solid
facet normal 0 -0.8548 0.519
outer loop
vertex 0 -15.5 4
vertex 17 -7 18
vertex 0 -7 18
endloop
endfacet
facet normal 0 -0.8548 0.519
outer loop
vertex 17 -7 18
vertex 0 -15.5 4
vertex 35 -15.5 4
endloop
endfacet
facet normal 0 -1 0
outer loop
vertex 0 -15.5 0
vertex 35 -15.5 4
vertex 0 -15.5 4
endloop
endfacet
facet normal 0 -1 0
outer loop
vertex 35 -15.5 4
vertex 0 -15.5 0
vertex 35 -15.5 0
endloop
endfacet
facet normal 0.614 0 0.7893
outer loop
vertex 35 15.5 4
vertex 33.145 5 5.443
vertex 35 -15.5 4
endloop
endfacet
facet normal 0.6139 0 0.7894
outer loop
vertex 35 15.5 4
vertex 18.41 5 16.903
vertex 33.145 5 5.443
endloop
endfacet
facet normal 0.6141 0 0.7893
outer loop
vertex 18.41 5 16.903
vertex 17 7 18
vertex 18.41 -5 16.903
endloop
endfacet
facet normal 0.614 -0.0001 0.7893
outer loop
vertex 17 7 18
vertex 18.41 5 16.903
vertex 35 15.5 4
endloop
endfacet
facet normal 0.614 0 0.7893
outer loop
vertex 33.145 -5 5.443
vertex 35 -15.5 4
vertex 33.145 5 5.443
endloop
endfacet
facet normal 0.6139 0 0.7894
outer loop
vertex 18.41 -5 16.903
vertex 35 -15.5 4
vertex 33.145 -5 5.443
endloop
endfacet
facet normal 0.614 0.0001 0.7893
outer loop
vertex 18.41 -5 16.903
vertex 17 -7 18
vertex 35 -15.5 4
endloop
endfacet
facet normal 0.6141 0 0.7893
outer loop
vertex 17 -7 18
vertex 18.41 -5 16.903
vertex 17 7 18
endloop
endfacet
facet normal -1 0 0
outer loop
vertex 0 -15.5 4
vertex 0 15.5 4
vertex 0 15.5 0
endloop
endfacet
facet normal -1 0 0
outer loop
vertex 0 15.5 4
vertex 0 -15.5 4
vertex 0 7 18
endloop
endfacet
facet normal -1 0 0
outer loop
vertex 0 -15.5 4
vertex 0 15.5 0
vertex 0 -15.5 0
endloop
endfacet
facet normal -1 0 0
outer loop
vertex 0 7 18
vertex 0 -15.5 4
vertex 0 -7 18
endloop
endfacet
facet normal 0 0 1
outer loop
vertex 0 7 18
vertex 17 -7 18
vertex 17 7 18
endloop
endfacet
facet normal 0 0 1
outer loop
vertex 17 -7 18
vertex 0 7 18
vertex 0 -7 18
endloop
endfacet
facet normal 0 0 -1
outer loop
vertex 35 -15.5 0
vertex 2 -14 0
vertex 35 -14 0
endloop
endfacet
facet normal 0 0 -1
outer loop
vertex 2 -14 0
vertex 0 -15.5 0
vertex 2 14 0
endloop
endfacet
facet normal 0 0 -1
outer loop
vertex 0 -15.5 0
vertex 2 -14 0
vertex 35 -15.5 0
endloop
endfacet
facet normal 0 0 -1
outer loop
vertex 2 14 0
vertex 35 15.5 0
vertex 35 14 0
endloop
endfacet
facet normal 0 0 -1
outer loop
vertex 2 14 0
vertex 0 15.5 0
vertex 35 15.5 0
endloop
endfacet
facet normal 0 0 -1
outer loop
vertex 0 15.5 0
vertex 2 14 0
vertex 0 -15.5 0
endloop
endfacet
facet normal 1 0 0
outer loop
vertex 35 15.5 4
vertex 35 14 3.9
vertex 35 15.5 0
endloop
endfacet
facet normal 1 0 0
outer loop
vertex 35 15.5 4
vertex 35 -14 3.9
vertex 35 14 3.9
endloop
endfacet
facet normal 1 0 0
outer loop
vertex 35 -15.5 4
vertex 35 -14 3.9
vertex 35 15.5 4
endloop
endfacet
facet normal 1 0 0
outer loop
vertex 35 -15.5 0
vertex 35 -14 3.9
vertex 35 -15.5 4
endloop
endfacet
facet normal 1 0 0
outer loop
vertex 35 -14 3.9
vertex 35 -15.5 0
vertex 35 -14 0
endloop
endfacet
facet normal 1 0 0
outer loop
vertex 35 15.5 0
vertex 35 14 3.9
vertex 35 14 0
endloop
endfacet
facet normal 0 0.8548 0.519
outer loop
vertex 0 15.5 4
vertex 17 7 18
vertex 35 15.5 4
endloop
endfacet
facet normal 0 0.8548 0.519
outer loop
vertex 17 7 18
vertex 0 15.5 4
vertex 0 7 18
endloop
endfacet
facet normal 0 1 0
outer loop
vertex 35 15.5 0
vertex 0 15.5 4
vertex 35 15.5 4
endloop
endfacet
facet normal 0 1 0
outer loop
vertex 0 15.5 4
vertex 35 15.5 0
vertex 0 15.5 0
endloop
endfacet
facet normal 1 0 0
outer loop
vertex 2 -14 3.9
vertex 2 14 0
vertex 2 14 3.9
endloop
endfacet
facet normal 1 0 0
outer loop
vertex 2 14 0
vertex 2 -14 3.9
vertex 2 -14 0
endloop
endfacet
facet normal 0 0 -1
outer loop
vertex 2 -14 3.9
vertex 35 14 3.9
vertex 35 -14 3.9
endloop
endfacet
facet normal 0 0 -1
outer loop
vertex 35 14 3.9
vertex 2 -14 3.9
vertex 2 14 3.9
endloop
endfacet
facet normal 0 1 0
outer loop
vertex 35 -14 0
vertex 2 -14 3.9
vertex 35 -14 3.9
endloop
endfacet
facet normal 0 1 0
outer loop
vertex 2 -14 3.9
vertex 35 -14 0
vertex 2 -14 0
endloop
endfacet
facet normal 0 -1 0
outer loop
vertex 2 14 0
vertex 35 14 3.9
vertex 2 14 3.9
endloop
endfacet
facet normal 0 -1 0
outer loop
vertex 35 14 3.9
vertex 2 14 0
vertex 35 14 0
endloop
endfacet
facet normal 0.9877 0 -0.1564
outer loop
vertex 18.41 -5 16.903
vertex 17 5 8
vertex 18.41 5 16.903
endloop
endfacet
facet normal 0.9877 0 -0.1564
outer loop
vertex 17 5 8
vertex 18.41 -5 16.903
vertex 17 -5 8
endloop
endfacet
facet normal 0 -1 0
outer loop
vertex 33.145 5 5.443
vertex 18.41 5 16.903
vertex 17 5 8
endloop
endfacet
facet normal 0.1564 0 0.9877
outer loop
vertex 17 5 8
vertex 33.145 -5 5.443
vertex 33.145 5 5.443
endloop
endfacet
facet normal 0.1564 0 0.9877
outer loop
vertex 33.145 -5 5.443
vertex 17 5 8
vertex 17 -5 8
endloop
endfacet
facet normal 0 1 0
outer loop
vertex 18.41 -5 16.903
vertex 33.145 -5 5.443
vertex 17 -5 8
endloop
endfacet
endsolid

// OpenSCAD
difference(){
    hull(){
    translate([0,-31/2,0])cube([35,31,4]);
    translate([0,-14/2,17])cube([17,14,1]);
    }
  translate([2,-28/2,-0.1])cube([40,28,4]);
    translate([17,-10/2,8])rotate([0,9,0])cube([35,10,20]);
}
